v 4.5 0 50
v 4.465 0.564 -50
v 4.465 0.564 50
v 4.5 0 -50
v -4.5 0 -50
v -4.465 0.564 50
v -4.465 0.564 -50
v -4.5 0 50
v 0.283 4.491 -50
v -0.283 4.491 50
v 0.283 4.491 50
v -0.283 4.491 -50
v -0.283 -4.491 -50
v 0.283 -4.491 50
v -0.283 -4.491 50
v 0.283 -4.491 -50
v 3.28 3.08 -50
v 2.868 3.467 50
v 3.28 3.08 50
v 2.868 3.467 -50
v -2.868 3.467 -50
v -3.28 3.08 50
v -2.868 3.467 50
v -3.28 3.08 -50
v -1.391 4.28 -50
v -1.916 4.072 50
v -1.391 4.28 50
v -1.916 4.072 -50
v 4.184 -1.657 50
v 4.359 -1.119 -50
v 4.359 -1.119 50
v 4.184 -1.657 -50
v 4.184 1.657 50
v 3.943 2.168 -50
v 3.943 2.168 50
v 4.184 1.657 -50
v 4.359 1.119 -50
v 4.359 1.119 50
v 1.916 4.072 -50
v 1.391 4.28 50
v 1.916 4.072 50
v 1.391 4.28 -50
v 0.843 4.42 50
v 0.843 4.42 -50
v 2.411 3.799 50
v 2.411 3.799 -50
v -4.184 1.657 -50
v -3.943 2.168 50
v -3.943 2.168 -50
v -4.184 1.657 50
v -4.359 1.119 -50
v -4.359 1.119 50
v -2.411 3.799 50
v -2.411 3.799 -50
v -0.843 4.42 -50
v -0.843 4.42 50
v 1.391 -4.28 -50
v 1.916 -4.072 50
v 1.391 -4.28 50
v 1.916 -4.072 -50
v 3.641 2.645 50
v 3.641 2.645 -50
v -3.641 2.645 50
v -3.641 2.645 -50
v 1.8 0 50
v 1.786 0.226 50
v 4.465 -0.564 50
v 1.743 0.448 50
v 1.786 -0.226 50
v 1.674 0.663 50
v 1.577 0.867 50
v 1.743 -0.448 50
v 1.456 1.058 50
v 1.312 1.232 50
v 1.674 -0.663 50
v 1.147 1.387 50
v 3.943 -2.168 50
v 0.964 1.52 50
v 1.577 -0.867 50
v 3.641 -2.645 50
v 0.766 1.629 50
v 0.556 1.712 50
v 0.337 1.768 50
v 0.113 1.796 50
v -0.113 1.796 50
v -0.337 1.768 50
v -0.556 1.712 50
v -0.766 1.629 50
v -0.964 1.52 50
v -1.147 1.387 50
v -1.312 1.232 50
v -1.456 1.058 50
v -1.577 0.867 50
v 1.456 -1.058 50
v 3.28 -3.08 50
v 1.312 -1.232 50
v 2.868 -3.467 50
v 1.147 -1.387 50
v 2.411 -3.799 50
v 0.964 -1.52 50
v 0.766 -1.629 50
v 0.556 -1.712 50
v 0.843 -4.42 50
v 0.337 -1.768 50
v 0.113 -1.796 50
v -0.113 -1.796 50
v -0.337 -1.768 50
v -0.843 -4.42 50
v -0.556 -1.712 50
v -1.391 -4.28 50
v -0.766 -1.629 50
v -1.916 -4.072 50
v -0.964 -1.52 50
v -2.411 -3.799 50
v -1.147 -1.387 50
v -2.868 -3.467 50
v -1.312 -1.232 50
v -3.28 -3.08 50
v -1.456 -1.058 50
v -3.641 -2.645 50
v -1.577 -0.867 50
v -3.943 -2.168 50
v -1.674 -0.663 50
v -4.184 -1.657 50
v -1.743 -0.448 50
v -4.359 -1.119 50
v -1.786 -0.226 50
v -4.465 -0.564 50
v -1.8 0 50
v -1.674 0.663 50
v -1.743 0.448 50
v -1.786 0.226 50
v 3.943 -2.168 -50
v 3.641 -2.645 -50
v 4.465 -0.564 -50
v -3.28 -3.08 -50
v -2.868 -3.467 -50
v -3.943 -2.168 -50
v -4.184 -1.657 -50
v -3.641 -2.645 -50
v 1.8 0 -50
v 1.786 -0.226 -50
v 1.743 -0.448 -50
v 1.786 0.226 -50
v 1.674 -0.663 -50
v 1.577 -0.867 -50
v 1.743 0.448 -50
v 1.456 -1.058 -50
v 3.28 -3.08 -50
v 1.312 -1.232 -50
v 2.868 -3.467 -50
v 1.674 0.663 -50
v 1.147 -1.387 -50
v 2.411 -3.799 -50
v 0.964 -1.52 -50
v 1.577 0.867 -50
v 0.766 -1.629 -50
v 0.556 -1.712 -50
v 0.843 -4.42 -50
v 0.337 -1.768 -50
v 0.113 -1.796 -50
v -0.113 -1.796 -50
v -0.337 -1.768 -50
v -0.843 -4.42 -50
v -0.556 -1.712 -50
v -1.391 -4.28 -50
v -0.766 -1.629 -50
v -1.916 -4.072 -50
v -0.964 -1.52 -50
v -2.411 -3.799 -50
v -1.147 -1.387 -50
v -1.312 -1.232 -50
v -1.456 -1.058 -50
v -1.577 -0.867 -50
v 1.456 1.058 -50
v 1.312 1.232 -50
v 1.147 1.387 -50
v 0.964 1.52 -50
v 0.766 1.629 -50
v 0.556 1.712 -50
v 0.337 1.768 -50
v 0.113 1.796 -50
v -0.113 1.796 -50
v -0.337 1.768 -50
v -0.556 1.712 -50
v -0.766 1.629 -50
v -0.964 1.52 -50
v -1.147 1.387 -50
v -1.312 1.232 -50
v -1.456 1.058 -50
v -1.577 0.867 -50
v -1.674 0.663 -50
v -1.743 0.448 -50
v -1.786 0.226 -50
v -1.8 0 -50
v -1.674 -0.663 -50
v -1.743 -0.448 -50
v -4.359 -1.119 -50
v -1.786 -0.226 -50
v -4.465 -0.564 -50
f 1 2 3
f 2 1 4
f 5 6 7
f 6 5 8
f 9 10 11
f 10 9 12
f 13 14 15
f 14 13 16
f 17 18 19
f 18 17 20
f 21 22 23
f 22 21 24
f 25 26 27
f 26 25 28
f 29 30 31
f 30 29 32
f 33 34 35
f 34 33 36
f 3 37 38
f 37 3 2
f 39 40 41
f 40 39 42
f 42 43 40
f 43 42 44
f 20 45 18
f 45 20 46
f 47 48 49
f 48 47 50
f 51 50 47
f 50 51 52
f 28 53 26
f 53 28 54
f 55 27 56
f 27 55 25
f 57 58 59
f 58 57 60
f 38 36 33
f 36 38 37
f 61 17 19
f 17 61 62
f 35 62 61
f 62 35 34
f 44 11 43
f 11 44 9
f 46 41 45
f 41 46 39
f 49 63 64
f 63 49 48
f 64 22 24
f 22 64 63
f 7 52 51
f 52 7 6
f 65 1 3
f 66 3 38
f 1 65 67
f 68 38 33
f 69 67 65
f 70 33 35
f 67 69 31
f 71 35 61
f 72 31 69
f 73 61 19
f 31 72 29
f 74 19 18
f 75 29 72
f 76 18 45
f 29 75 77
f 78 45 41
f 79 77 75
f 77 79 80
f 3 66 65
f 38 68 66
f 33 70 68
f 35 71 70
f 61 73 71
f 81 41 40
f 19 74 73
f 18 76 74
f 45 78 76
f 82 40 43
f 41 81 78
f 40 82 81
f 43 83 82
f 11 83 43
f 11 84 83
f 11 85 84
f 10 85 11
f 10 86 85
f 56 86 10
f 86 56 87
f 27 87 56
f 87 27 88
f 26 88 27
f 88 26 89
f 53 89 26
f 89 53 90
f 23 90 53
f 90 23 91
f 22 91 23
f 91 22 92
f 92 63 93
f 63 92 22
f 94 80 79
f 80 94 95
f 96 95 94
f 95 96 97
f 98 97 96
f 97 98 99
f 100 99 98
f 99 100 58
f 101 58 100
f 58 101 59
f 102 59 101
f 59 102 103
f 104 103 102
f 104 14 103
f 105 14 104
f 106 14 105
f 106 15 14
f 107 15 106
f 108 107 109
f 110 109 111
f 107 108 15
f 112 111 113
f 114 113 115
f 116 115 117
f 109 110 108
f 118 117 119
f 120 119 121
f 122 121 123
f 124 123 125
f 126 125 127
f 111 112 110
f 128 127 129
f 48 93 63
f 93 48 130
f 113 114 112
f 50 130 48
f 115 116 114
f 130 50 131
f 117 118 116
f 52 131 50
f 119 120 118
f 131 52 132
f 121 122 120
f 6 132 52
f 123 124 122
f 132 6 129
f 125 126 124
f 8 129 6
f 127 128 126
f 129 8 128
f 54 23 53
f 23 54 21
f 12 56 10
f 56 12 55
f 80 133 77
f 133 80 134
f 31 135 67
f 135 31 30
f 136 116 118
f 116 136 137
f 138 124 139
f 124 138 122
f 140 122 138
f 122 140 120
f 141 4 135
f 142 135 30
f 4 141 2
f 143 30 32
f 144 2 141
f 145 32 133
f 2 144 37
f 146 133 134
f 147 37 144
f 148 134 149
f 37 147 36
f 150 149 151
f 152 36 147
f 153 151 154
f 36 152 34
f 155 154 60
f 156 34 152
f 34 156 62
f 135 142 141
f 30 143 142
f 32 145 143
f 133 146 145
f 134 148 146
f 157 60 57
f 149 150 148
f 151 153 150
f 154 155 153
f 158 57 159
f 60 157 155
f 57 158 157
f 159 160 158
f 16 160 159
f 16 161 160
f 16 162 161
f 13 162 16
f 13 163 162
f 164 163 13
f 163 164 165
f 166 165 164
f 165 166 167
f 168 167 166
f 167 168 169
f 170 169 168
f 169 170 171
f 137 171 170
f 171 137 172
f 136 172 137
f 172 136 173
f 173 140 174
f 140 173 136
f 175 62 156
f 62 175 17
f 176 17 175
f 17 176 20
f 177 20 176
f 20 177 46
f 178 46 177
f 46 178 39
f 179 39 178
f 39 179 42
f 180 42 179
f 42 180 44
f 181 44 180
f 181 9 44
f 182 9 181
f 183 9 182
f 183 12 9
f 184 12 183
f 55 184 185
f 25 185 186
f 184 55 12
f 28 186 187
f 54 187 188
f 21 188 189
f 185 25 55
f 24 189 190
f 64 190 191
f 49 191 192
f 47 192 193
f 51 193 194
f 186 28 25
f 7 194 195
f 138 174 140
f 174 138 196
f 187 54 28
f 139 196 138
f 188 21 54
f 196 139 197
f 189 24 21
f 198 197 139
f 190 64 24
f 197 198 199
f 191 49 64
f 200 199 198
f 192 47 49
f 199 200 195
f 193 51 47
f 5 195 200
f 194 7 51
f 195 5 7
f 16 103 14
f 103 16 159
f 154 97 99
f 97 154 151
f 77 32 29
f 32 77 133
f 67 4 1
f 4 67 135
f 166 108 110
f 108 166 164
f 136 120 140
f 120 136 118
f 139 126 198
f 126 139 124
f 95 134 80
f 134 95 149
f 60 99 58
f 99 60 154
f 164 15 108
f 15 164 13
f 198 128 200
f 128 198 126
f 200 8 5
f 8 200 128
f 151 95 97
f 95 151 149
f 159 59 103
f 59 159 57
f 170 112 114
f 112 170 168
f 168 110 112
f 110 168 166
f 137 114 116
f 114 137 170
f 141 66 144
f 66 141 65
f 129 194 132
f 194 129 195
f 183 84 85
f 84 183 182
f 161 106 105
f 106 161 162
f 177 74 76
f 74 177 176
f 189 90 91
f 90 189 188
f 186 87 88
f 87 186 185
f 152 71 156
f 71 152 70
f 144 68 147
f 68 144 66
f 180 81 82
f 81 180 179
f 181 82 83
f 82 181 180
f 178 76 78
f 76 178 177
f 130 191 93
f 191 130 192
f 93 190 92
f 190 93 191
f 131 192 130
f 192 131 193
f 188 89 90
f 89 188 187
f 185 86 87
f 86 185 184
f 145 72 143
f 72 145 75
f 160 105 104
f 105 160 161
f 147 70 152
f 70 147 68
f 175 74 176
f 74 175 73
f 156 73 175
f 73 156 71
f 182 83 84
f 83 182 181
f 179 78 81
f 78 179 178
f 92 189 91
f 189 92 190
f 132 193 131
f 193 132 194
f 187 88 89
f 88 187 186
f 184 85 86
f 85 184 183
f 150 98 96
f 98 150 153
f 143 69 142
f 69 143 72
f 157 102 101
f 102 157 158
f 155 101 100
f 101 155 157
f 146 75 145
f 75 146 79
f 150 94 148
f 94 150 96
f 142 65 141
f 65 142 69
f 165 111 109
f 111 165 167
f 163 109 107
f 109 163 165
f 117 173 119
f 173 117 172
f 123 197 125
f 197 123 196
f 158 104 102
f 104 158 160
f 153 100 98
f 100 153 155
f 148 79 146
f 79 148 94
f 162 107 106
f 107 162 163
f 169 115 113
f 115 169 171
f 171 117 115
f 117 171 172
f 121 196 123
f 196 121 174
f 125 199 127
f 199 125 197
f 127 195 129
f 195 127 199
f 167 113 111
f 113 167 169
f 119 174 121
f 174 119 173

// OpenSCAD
$fn = 50;


difference() {
	union() {
		translate(v = [0, 0, -50.0000000000]) {
			cylinder(h = 100, r = 4.5000000000);
		}
	}
	union() {
		translate(v = [0, 0, -100.0000000000]) {
			cylinder(h = 200, r = 1.8000000000);
		}
	}
}
